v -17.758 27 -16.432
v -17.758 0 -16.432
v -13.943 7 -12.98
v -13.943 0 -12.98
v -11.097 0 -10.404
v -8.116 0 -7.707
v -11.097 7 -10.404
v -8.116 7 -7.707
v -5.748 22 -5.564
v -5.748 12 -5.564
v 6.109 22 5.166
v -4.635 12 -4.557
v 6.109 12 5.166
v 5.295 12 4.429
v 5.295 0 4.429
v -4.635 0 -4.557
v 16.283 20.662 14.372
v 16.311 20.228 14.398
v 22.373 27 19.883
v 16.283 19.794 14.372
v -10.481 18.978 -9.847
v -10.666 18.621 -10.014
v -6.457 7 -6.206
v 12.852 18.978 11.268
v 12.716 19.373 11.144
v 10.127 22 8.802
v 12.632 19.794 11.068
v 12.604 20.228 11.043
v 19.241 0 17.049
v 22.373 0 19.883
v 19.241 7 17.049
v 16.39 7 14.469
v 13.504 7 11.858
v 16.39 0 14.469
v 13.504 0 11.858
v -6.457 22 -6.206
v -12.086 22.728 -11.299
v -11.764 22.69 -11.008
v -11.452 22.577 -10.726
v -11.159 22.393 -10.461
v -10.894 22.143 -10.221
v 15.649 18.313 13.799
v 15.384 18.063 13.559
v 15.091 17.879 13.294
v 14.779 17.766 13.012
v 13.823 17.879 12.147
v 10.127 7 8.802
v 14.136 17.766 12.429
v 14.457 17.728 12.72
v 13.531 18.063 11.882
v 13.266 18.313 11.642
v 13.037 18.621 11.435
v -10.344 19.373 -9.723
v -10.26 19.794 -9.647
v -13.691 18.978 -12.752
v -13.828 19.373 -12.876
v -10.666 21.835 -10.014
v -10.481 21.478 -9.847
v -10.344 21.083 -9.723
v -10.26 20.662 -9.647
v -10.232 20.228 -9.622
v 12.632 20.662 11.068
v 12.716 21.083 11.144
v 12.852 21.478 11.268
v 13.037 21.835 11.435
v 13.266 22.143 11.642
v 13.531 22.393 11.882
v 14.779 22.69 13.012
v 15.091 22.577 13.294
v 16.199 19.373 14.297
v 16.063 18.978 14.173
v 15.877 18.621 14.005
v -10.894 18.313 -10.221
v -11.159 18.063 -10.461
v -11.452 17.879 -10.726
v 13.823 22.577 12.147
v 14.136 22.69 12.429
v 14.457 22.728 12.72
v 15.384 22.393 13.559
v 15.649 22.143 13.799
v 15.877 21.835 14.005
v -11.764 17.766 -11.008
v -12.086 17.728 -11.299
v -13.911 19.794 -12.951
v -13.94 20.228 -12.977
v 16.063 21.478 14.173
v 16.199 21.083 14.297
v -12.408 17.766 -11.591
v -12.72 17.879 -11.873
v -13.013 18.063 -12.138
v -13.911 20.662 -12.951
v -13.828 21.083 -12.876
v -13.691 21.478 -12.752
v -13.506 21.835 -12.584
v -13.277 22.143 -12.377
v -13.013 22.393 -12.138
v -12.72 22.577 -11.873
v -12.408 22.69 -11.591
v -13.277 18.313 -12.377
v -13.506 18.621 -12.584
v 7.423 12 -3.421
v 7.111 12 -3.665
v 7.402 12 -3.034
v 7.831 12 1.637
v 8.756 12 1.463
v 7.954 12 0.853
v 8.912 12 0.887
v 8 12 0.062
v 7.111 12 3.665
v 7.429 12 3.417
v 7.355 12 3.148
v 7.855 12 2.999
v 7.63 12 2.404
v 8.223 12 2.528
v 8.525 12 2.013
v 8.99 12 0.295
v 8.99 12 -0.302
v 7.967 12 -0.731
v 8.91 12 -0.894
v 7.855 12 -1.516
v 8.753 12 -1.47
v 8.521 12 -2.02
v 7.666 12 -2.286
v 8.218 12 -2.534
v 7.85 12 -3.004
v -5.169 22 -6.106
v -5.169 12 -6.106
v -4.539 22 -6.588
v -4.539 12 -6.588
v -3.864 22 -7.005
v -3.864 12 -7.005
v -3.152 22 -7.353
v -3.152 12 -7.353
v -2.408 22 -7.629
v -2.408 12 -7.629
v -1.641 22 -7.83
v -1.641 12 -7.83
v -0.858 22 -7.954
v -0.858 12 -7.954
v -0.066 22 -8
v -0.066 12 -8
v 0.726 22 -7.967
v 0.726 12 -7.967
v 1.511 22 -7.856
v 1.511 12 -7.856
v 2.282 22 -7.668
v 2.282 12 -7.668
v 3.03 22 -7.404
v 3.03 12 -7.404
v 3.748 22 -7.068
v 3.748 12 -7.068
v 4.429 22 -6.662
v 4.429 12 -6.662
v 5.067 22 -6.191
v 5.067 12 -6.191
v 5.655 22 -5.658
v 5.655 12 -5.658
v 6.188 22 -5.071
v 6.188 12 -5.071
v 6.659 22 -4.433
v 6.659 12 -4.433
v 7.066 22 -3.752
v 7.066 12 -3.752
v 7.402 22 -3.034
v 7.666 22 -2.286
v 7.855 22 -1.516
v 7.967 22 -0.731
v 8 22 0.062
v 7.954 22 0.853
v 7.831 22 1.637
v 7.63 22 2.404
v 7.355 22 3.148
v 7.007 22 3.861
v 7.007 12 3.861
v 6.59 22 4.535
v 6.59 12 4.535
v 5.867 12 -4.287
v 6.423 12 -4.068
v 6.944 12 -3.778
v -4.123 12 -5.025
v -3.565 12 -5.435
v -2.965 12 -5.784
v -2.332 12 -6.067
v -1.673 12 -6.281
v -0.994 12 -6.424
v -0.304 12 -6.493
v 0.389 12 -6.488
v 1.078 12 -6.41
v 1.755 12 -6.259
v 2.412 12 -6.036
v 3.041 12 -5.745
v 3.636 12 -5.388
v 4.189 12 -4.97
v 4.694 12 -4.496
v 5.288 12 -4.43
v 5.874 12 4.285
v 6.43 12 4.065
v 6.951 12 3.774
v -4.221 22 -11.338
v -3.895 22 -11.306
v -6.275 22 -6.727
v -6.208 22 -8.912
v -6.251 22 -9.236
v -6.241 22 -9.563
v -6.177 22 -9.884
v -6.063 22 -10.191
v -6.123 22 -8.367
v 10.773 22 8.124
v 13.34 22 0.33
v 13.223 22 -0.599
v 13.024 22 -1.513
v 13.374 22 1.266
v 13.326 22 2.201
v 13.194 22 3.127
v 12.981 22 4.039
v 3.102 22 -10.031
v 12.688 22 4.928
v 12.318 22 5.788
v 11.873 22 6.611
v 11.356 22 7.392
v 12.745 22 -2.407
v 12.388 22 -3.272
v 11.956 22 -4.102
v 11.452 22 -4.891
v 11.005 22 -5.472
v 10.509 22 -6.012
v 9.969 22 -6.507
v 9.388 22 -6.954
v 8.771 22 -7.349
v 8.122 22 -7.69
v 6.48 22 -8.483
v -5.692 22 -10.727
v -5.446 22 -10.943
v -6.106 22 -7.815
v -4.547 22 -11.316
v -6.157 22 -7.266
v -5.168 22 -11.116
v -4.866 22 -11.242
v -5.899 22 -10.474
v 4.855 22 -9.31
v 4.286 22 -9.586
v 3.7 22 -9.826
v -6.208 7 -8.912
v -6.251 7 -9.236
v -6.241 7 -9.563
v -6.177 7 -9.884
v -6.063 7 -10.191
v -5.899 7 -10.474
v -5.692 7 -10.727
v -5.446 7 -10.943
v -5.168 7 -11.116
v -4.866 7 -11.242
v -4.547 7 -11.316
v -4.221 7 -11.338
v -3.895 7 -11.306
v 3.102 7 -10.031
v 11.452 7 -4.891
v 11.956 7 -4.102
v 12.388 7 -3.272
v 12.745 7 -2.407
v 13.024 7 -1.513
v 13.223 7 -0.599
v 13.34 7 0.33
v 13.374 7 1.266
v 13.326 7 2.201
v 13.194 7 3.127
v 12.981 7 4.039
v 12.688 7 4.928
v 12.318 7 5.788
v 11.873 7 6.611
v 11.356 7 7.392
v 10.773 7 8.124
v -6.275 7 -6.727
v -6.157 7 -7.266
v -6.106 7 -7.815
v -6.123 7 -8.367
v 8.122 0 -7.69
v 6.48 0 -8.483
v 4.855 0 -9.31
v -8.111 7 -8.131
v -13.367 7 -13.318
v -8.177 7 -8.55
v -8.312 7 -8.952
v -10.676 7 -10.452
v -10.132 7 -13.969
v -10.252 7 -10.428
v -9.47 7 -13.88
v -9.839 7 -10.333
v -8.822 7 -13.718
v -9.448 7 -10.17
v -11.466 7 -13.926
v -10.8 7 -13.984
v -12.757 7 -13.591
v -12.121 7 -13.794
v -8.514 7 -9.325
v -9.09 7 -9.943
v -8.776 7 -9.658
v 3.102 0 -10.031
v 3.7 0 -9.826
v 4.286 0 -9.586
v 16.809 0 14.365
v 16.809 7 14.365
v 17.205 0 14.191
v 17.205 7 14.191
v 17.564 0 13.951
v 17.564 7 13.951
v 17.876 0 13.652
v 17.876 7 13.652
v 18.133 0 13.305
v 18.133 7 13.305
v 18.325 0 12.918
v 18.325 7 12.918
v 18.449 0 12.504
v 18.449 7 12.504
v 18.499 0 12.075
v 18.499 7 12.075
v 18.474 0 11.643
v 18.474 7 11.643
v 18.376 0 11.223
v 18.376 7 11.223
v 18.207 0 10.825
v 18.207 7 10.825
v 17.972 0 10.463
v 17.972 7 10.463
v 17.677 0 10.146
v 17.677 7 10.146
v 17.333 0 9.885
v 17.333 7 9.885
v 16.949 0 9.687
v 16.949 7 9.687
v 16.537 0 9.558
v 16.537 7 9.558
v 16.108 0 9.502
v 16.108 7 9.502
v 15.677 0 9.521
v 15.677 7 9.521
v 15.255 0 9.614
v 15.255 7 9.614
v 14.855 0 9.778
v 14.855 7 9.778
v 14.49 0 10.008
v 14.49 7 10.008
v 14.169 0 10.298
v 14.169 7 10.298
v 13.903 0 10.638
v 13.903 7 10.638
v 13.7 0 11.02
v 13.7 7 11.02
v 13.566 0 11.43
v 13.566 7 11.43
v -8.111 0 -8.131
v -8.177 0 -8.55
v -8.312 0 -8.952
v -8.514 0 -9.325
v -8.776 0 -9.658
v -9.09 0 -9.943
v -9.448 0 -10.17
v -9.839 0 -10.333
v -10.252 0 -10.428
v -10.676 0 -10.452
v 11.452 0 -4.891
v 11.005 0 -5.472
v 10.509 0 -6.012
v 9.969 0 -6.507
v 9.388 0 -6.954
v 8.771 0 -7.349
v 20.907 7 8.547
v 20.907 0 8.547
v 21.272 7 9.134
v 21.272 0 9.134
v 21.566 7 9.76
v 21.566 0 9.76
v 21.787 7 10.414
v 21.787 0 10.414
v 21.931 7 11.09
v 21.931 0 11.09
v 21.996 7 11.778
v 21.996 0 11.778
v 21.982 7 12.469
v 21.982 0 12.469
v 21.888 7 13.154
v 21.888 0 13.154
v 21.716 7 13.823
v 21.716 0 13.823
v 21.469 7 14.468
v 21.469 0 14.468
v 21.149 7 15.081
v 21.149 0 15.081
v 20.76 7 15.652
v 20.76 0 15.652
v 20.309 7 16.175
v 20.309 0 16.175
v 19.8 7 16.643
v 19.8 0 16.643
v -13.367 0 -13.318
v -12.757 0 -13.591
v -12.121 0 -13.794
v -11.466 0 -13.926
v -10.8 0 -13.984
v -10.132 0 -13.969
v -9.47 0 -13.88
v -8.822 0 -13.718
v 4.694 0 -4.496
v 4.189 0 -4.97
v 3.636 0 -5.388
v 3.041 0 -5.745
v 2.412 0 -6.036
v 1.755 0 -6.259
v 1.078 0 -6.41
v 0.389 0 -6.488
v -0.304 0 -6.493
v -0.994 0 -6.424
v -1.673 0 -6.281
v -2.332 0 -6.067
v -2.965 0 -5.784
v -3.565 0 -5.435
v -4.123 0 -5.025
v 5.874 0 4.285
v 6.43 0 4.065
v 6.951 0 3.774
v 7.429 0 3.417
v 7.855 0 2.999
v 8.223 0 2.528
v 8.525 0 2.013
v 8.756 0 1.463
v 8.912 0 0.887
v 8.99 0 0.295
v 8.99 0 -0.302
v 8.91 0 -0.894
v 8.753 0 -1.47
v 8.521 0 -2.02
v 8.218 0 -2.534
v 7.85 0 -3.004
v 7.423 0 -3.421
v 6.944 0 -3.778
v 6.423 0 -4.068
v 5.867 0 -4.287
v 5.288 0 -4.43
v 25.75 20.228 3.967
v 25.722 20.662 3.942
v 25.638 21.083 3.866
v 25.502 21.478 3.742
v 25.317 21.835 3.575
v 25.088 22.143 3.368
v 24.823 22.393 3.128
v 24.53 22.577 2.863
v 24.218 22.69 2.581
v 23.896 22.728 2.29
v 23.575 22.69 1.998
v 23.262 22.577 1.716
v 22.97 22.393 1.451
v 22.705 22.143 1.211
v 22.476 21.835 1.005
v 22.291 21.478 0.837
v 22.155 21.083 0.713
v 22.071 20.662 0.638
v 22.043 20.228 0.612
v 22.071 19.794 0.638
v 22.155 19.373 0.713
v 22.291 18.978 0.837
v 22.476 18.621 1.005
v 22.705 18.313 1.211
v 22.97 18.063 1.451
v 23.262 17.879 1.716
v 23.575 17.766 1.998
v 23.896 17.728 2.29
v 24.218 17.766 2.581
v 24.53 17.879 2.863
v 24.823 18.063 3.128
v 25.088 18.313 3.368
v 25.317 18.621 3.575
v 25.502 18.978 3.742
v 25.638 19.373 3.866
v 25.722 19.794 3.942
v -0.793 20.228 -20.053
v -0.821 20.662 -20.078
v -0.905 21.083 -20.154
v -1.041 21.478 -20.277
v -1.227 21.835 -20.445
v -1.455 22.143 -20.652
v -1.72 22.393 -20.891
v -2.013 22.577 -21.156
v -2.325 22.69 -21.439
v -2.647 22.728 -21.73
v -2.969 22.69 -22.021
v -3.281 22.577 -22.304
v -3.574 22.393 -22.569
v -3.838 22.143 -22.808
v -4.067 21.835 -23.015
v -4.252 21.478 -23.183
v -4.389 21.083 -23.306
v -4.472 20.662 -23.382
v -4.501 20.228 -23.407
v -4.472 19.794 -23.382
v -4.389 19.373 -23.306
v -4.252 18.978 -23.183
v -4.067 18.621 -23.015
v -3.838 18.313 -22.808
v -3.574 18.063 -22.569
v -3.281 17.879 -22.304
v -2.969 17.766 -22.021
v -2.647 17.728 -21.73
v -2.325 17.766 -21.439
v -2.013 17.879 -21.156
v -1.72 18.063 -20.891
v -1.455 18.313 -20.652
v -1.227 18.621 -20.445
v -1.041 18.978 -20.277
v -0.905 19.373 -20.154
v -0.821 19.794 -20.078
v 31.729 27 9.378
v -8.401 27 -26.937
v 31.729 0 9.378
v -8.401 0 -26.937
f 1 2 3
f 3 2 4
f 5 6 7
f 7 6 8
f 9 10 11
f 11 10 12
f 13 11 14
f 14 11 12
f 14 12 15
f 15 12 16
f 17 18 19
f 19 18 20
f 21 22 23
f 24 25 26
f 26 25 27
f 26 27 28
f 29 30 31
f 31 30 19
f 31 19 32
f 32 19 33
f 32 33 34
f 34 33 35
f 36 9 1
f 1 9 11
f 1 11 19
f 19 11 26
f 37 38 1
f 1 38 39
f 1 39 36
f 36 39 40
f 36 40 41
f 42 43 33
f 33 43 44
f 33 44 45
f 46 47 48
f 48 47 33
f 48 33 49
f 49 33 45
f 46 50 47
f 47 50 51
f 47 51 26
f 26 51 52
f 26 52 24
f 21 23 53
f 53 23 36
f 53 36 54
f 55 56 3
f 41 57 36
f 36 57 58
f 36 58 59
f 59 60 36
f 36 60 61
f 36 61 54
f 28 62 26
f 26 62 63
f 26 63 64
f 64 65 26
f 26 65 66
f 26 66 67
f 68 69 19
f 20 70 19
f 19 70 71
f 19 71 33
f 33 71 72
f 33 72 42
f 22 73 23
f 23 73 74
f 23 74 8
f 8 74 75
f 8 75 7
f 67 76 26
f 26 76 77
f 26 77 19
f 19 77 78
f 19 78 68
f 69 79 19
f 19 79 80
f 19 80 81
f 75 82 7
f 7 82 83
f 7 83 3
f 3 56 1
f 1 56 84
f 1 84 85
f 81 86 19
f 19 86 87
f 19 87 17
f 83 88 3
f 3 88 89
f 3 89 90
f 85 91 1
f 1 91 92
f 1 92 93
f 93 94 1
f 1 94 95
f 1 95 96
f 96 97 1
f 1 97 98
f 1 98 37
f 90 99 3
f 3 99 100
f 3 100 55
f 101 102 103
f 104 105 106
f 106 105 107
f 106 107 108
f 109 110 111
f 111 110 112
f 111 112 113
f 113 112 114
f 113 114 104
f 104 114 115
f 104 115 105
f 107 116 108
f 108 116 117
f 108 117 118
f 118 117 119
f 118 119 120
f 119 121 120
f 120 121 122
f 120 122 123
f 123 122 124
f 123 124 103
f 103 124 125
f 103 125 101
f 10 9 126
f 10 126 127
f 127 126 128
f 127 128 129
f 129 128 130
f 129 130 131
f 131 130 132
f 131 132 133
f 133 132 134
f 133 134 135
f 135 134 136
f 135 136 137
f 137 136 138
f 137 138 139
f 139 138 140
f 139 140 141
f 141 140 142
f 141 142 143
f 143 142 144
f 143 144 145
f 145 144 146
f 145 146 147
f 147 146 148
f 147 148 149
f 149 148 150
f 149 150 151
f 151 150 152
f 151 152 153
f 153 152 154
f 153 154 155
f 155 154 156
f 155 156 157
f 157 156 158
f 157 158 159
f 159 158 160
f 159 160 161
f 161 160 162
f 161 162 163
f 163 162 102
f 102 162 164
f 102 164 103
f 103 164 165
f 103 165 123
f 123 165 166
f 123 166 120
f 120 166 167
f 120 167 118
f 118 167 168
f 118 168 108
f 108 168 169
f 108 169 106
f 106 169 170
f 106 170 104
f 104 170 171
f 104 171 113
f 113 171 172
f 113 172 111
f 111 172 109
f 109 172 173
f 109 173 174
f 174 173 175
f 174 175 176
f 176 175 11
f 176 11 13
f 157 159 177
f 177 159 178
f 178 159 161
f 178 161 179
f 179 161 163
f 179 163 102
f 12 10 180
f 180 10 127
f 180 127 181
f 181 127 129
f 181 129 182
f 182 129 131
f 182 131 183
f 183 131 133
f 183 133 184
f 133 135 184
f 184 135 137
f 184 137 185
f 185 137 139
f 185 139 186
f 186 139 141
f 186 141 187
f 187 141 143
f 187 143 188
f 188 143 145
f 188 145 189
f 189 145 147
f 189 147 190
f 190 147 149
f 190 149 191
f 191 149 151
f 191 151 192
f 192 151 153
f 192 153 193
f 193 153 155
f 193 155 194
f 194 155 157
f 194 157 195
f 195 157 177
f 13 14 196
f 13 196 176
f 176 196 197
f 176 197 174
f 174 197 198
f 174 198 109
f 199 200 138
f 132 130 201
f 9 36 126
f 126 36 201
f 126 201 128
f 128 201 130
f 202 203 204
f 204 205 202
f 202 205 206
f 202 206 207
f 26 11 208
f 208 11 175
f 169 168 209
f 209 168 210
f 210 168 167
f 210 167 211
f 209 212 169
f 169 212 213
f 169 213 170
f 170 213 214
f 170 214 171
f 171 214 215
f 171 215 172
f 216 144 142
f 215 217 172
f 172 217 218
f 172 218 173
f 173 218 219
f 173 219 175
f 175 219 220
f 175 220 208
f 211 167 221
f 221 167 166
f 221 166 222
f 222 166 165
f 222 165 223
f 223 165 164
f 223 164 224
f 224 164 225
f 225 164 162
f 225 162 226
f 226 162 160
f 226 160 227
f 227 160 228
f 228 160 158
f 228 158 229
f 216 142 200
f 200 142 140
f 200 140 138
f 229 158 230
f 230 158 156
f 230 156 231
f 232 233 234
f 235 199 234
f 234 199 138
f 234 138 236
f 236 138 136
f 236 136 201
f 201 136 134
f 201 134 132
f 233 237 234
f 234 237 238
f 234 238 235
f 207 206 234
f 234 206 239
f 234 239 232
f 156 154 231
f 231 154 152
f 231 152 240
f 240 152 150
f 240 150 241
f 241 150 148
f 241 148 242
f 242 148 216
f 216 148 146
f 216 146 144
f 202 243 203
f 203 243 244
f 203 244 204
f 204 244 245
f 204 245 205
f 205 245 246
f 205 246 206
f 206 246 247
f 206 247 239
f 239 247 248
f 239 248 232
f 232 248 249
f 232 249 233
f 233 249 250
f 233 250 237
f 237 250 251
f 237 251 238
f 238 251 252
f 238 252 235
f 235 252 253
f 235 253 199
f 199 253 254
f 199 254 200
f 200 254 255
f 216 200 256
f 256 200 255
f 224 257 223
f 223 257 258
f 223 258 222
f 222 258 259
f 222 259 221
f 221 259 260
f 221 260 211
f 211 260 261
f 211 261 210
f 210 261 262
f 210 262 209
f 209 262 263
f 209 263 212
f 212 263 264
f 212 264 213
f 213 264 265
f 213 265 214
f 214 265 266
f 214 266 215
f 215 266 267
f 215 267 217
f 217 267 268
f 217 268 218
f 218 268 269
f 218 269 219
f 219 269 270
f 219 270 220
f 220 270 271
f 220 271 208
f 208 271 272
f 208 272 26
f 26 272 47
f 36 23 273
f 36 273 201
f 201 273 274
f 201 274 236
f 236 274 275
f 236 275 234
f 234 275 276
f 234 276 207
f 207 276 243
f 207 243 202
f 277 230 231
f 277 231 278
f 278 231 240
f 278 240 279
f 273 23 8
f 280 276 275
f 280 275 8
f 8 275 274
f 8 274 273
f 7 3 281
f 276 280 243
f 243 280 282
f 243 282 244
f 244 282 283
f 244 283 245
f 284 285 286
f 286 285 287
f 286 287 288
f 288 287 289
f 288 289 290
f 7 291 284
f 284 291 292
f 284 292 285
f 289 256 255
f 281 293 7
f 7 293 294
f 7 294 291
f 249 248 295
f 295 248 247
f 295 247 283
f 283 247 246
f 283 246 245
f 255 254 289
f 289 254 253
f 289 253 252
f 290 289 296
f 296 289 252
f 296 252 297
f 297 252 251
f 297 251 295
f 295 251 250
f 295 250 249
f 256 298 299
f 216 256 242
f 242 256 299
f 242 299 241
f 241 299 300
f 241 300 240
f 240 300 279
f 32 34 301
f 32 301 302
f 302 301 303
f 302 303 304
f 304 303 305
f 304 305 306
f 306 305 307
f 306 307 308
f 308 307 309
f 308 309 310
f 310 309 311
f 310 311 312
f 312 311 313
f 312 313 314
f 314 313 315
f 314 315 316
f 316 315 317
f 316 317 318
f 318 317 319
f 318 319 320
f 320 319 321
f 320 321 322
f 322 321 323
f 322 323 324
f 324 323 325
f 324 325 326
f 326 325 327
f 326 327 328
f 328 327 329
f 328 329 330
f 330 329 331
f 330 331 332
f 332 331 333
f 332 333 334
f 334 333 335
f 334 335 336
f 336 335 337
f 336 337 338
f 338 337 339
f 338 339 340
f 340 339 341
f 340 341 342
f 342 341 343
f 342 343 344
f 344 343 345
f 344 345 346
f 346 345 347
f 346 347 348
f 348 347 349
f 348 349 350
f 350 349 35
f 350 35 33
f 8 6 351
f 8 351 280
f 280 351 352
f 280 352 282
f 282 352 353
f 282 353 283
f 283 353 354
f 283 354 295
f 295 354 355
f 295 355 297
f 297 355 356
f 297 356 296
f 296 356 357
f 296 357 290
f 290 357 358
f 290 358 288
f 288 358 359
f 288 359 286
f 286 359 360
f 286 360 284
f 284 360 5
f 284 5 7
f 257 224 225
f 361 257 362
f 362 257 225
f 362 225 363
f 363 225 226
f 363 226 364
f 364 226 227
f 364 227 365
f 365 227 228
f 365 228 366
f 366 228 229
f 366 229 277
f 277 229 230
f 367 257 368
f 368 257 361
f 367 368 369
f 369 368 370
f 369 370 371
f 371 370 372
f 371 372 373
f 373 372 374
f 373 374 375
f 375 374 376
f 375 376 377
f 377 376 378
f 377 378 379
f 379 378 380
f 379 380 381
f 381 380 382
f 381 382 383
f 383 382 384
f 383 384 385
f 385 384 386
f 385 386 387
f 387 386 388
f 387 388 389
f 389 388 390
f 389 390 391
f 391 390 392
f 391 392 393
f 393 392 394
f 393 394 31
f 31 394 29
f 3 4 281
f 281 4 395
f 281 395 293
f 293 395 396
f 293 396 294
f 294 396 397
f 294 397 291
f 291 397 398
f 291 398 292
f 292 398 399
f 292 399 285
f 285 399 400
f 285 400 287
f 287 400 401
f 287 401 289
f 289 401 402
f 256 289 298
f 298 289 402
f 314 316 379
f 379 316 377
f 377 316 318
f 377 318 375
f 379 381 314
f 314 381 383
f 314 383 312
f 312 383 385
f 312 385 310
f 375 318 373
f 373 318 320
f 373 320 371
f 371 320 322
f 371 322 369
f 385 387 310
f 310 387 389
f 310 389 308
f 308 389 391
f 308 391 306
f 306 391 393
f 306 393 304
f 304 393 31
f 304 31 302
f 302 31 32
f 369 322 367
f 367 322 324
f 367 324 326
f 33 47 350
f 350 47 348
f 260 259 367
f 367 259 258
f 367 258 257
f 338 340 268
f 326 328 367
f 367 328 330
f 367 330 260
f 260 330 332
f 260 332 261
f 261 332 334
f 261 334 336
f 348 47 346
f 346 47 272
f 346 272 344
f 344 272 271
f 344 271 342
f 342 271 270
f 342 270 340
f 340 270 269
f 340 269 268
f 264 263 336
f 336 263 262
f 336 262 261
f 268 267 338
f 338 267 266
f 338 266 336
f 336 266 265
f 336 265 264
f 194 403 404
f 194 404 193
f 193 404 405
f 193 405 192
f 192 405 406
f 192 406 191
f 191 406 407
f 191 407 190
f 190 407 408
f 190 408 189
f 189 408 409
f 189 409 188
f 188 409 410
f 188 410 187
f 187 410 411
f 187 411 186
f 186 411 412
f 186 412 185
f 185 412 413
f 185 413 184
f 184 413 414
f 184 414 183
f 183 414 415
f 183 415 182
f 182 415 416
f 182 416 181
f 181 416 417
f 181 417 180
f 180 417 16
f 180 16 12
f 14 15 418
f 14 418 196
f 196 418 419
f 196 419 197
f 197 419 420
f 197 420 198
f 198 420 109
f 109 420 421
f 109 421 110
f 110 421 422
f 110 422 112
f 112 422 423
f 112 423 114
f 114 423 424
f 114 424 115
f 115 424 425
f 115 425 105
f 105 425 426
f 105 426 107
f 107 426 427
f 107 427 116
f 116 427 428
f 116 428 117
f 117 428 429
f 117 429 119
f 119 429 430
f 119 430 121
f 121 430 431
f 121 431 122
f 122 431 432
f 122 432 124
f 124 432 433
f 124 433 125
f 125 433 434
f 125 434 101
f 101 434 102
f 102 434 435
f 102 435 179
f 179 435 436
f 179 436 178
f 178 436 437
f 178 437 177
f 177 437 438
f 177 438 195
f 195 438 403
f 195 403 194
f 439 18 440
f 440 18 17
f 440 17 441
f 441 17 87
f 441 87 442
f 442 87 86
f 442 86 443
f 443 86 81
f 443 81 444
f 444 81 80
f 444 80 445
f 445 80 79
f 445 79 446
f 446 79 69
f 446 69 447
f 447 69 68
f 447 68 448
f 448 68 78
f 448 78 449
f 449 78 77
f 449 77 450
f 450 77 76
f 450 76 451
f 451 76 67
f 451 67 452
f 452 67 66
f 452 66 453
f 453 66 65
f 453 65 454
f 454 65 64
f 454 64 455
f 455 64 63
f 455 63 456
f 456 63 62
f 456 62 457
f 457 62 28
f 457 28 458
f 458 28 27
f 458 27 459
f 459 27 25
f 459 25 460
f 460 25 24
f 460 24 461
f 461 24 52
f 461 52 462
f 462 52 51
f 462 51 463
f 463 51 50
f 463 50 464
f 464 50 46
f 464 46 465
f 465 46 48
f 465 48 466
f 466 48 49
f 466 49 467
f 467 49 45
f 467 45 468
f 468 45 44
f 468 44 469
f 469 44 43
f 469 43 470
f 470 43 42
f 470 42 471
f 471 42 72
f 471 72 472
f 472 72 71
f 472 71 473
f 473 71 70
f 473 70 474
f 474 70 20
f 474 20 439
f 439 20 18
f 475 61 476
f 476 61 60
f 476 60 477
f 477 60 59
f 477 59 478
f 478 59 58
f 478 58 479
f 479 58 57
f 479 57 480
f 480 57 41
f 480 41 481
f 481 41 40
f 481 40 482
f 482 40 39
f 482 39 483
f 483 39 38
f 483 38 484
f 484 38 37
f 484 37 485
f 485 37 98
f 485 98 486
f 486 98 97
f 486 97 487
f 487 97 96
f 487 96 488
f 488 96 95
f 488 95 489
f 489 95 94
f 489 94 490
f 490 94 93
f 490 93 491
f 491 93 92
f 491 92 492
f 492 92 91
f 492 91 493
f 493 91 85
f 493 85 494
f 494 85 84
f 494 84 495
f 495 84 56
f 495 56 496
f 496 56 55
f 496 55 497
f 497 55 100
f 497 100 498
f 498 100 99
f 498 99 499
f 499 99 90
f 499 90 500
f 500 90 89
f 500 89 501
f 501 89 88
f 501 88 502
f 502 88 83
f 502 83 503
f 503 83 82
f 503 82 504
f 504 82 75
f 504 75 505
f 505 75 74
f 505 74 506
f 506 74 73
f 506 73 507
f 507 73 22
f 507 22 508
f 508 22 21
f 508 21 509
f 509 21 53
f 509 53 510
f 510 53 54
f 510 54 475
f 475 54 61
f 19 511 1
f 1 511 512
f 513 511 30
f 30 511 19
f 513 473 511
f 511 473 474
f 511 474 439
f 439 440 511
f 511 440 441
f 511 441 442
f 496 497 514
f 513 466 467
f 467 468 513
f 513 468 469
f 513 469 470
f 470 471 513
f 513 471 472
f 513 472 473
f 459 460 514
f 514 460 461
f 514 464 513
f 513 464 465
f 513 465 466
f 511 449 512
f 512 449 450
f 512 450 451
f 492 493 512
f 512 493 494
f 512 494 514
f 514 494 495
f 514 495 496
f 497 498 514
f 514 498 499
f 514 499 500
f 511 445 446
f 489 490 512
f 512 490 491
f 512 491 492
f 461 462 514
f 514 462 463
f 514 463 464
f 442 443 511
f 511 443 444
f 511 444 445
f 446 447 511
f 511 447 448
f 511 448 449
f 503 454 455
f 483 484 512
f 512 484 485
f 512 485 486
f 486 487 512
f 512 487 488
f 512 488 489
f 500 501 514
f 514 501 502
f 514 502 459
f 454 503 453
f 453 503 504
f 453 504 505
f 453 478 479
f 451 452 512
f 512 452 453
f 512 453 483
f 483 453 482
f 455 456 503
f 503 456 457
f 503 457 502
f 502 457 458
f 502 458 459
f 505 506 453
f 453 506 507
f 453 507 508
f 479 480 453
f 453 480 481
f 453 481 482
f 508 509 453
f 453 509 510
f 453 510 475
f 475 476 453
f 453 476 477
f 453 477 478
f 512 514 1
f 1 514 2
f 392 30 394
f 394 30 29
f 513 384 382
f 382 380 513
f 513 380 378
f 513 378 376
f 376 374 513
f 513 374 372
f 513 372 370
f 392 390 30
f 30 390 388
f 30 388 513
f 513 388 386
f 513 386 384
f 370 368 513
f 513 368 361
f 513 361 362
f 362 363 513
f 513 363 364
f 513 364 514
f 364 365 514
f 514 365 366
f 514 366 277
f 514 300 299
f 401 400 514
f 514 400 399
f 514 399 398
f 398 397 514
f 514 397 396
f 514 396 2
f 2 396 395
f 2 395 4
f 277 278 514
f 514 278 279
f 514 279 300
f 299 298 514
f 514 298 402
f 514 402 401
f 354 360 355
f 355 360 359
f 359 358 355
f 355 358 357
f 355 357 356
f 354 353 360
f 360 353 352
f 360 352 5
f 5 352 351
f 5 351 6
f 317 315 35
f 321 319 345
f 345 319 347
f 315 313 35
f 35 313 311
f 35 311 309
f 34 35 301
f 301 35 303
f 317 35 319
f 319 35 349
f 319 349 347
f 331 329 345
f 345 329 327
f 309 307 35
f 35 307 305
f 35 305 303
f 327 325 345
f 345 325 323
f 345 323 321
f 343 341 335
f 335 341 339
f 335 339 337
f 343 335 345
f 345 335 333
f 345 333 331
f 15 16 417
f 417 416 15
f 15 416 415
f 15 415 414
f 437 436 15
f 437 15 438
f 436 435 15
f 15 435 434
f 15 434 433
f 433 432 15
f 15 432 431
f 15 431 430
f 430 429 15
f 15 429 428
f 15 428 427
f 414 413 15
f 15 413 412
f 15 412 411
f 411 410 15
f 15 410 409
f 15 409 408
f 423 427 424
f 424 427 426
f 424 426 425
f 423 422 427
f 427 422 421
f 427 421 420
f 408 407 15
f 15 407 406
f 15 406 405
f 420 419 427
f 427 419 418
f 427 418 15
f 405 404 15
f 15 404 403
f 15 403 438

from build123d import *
from build123d.topology import SkipClean

# Parameters (mm, degrees)
SKETCH2_R           = 2.5
BOSS_EXTRUDE1_DEPTH = 7
FILLET1_R           = 90
BOSS_EXTRUDE3_DEPTH = 15
SKETCH4_R           = 8
CUT_EXTRUDE1_DEPTH  = 10
BOSS_EXTRUDE4_START = 10
BOSS_EXTRUDE4_DEPTH = 10
BOSS_EXTRUDE5_DEPTH = 27
SKETCH7_R           = 2.5
CUT_EXTRUDE2_DEPTH  = 37
INTERSECT3_DEPTH    = 27


with BuildPart() as part:
    # Sketch2 → Boss-Extrude1 (new body)
    with BuildSketch(Plane(origin=(0, 0, 0), x_dir=(1, 0, 0), z_dir=(0, 1, 0))):
        with BuildLine():
            Line((-4.24846021, -9.602113613), (13.572308451, -17.486922065))
            ThreePointArc((13.572308451, -17.486922065), (20.638500285, -15.805826469), (20.907079545, -8.547382103))
            Line((20.907079545, -8.547382103), (11.451696022, 4.891208687))
            ThreePointArc((11.451696022, 4.891208687), (9.270724445, 7.034926316), (6.472222222, 8.268031175))
            ThreePointArc((6.472222222, 8.268031175), (4.86754966, 9.30359932), (3.101845071, 10.031378627))
            Line((3.101845071, 10.031378627), (-8.821699821, 13.718308443))
            ThreePointArc((-8.821699821, 13.718308443), (-15.091857172, 11.987583677), (-16.147811194, 5.569231667))
            Line((-16.147811194, 5.569231667), (-12.308520784, -3.358124948))
            ThreePointArc((-12.308520784, -3.358124948), (-9.971976629, -6.504419403), (-6.472222222, -8.268031175))
            ThreePointArc((-6.472222222, -8.268031175), (-5.401685102, -9.003987898), (-4.24846021, -9.602113613))
        make_face()
        with Locations(Location((16, -12, 0), (0, 0, 270))):
            Circle(SKETCH2_R, mode=Mode.SUBTRACT)
        with Locations(Location((-10.604337088, 7.953252816, 0), (0, 0, 270))):
            Circle(SKETCH2_R, mode=Mode.SUBTRACT)
        with BuildLine():
            ThreePointArc((-4.694444444, -4.495797077), (0, -6.5), (4.694444444, -4.495797077))
            ThreePointArc((4.694444444, -4.495797077), (9, 0), (4.694444444, 4.495797077))
            ThreePointArc((4.694444444, 4.495797077), (0, 6.5), (-4.694444444, 4.495797077))
            ThreePointArc((-4.694444444, 4.495797077), (-9, 0), (-4.694444444, -4.495797077))
        make_face(mode=Mode.SUBTRACT)
    extrude(amount=BOSS_EXTRUDE1_DEPTH)

    # Fillet1
    fillet1_edges = [part.edges().sort_by_distance(p)[0] for p in [
        (6.472222222, 3.5, -8.268031175),
        (-6.472222222, 3.5, 8.268031175),
    ]]
    fillet(fillet1_edges, radius=FILLET1_R)

    # Sketch3 → Boss-Extrude3 (add)
    with BuildSketch(Plane(origin=(0, 7, 0), x_dir=(1, 0, 0), z_dir=(0, 1, 0))):
        with BuildLine():
            Line((-13.446880098, 1.012795393), (-12.308520784, -3.358124948))
            ThreePointArc((-12.308520784, -3.358124948), (-10.611843956, -5.907229762), (-8.121968415, -7.689690813))
            ThreePointArc((-8.121968415, -7.689690813), (-6.480430757, -8.483296944), (-4.855306799, -9.309994408))
            ThreePointArc((-4.855306799, -9.309994408), (-4.554226262, -9.460920841), (-4.24846021, -9.602113613))
            Line((-4.24846021, -9.602113613), (-1.454246479, -10.838414946))
            ThreePointArc((-1.454246479, -10.838414946), (10.979115699, -7.880432641), (11.451696022, 4.891208687))
            ThreePointArc((11.451696022, 4.891208687), (9.968863726, 6.507036925), (8.121968415, 7.689690813))
            ThreePointArc((8.121968415, 7.689690813), (6.480430757, 8.483296944), (4.855306799, 9.309994408))
            ThreePointArc((4.855306799, 9.309994408), (3.994892398, 9.710346787), (3.101845071, 10.031378627))
            Line((3.101845071, 10.031378627), (-3.895223267, 11.305534387))
            ThreePointArc((-3.895223267, 11.305534387), (-5.691953988, 10.727471116), (-6.207623157, 8.911848981))
            ThreePointArc((-6.207623157, 8.911848981), (-7.30582589, 4.892236012), (-11.232333003, 3.497288147))
            ThreePointArc((-11.232333003, 3.497288147), (-13.004436636, 2.847636589), (-13.446880098, 1.012795393))
        make_face()
        with BuildLine():
            ThreePointArc((4.694444444, -4.495797077), (9, 0), (4.694444444, 4.495797077))
            ThreePointArc((4.694444444, 4.495797077), (0, 6.5), (-4.694444444, 4.495797077))
            ThreePointArc((-4.694444444, 4.495797077), (-9, 0), (-4.694444444, -4.495797077))
            ThreePointArc((-4.694444444, -4.495797077), (0, -6.5), (4.694444444, -4.495797077))
        make_face(mode=Mode.SUBTRACT)
    extrude(amount=BOSS_EXTRUDE3_DEPTH)

    # Sketch4 → Cut-Extrude1 (cut)
    with BuildSketch(Plane(origin=(0, 22, 0), x_dir=(1, 0, 0), z_dir=(0, 1, 0))):
        Circle(SKETCH4_R)
    extrude(amount=-CUT_EXTRUDE1_DEPTH, mode=Mode.SUBTRACT)

    # Sketch5 → Boss-Extrude4 (add)
    with SkipClean():  # the faces are left unmerged after this step: merging them gives an invalid solid
        with BuildSketch(Plane(origin=(0, 12, 0), x_dir=(1, 0, 0), z_dir=(0, 1, 0)).offset(BOSS_EXTRUDE4_START)):
            with BuildLine():
                ThreePointArc((-7.111111111, 3.664982778), (-8, 0), (-7.111111111, -3.664982778))
                ThreePointArc((-7.111111111, -3.664982778), (-9, 0), (-7.111111111, 3.664982778))
            make_face()
            with BuildLine():
                ThreePointArc((7.111111111, -3.664982778), (9, 0), (7.111111111, 3.664982778))
                ThreePointArc((7.111111111, 3.664982778), (8, 0), (7.111111111, -3.664982778))
            make_face()
        extrude(amount=-BOSS_EXTRUDE4_DEPTH)


with BuildPart() as body_2:
    # Sketch6 → Boss-Extrude5 (new body)
    with BuildSketch(Plane(origin=(0, 0, 0), x_dir=(-1, 0, 0), z_dir=(0, -1, 0))):
        Polygon((8.401052482, 26.937158796), (-31.729302738, -9.377746691), (-13.016359271, -30.388770935), (27.113995949, 5.926134553), align=None)
    extrude(amount=-BOSS_EXTRUDE5_DEPTH)

    # Sketch7 → Cut-Extrude2 (cut)
    with BuildSketch(Plane(origin=(-9.25873614, 0, 10.23151142), x_dir=(0.7414761288495602, 0, 0.670979247329059), z_dir=(-0.670979247329059, 0, 0.7414761288495602))):
        with Locations((-16.542969249, 20.228212297)):
            Circle(SKETCH7_R)
        with Locations((19.254983261, 20.228212297)):
            Circle(SKETCH7_R)
    extrude(amount=-CUT_EXTRUDE2_DEPTH, mode=Mode.SUBTRACT)

    # Intersect1: read off the stored shape, not the designer's step
    # Intersect1: cut part
    add(part.part, mode=Mode.SUBTRACT)

    # Intersect3: read off the stored shape, not the designer's step
    # Intersect3 outline → Intersect3 (cut)
    with BuildSketch(Plane(origin=(0, 0, 0), x_dir=(1, 0, 0), z_dir=(0, 1, 0))):
        Polygon((13.016359271, -30.388770935), (22.372831004, -19.883258813), (-17.757524216, 16.431646675), (-27.113995949, 5.926134553), align=None)
    extrude(amount=INTERSECT3_DEPTH, mode=Mode.SUBTRACT)


solid = body_2.part
